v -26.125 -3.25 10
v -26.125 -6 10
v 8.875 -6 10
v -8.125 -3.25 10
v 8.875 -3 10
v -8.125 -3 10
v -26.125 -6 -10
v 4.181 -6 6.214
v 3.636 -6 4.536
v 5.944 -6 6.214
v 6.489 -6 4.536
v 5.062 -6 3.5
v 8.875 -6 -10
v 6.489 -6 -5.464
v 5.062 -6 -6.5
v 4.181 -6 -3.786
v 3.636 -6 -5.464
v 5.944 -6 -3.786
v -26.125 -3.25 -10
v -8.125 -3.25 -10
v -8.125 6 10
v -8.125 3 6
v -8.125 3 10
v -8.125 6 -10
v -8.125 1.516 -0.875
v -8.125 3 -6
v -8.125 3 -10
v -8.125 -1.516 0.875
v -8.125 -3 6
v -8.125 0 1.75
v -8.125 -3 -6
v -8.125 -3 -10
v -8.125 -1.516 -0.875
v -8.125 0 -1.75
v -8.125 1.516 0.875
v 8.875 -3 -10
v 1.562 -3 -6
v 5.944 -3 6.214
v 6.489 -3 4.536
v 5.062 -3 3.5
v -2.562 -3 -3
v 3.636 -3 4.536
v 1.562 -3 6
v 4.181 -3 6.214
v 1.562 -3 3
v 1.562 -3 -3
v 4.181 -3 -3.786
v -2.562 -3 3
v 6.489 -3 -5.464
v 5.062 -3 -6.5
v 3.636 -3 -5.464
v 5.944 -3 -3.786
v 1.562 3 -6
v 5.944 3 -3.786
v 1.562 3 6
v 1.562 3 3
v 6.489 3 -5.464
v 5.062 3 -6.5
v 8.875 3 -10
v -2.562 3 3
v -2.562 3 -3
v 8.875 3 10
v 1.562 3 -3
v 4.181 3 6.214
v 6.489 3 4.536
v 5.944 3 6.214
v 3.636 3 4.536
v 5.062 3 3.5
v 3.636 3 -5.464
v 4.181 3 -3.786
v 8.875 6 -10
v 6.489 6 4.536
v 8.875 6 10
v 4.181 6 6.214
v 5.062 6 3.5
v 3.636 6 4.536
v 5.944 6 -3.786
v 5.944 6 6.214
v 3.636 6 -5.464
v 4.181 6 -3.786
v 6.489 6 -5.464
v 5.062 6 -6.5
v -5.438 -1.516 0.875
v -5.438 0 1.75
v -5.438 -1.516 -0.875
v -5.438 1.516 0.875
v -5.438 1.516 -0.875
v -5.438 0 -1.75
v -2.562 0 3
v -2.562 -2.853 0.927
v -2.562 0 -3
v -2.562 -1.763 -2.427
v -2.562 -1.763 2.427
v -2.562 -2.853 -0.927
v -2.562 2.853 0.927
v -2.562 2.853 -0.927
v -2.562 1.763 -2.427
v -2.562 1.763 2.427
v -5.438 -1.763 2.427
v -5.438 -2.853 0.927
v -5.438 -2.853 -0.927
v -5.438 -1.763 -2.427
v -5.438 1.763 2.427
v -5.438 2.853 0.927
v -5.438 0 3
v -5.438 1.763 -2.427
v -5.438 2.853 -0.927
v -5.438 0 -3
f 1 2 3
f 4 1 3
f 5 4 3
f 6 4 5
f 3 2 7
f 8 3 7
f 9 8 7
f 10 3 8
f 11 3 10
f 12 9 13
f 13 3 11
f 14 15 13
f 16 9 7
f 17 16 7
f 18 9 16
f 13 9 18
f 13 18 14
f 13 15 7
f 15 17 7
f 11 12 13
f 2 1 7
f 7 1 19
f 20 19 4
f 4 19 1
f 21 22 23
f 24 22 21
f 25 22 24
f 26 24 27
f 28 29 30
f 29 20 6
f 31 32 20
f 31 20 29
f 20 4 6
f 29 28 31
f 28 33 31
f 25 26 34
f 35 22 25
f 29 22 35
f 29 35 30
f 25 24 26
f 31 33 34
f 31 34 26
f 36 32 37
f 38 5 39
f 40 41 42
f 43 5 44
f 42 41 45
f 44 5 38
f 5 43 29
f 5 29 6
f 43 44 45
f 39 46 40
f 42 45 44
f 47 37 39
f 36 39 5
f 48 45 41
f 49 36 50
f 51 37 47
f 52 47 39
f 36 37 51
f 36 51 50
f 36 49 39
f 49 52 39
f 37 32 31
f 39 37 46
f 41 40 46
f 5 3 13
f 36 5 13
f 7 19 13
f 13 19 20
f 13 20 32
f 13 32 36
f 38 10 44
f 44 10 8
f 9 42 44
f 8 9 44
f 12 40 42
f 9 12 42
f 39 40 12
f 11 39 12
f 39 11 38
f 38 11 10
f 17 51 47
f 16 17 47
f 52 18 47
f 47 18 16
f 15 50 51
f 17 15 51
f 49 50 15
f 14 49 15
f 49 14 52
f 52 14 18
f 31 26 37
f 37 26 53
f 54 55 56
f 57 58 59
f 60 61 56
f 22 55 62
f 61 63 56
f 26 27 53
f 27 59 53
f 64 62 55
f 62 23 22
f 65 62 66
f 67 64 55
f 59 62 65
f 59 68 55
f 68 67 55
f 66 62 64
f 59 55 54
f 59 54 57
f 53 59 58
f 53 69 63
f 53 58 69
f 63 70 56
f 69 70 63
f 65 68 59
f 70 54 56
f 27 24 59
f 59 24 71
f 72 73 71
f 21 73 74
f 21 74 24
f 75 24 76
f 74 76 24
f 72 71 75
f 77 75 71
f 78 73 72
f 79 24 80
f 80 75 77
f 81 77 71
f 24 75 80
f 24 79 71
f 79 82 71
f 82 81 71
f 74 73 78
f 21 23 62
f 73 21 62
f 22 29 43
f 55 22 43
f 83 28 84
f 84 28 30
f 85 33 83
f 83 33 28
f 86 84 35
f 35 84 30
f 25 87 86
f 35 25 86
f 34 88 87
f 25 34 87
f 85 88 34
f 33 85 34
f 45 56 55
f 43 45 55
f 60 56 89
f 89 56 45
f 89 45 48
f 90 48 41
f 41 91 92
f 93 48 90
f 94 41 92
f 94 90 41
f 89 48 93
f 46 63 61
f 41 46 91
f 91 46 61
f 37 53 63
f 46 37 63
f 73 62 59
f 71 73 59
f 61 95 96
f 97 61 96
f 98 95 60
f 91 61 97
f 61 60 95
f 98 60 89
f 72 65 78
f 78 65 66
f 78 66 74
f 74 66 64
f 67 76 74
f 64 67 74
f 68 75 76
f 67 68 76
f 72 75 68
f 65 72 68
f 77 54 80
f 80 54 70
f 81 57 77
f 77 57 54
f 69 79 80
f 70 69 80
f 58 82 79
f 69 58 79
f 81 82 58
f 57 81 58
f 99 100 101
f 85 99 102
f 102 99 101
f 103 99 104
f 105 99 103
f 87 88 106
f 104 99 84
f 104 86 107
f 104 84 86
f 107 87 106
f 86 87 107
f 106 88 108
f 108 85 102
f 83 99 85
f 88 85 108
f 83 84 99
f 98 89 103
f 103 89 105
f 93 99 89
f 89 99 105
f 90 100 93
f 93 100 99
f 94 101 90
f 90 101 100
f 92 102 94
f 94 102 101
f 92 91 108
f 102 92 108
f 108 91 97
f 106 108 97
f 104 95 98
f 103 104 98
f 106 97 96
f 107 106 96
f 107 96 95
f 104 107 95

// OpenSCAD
/*
 * microswitch_holder.scad
 * An updated mircoswitch holder for the adjustable z endstop holder.
 * Copyright (C) 2014 Mogue Carpenter
 *
 * This program is free software: you can redistribute it and/or modify
 * it under the terms of the GNU General Public License as published by
 * the Free Software Foundation, either version 3 of the License, or
 * (at your option) any later version.
 *
 * This program is distributed in the hope that it will be useful,
 * but WITHOUT ANY WARRANTY; without even the implied warranty of
 * MERCHANTABILITY or FITNESS FOR A PARTICULAR PURPOSE. See the
 * GNU General Public License for more details.

 * You should have received a copy of the GNU General Public License
 * along with this programbvngn If not, see <http://www.gnu.org/licenses/>.
*/

//switch dimensions
sw_h = 9.75;
sw_l = 20;
sw_w = 6;
sw_bore = 1.5;
sw_h_os = 3.5;
sw_gap = 10;

// holder
h_h = 35;
h_w = 12;
h_l = sw_l;
sc_os = 8;
wall = 2.75;
h_top_h = 13;

//wires tubing
pin_h = 4;
pin_w = 4;

//bolt hole
b_ir = 1.75;
b_or = 3;
b_h = 3;


rotate ([0,90,0])
difference(){
	translate([0,0,pin_h+sw_h/2-(h_h/2)]) cube([h_l,h_w,h_h], center=true);
	translate([0,0,sw_h/4]) sw_holder ();
	translate([0,2.75,((sw_h-h_h)/2)-h_top_h]) cube([h_l,h_w,h_h], center=true);
}	

//sw_holder ();

module sw_holder () {
	translate([0,0,pin_h]){
		cube([sw_l,sw_w,sw_h], center=true);
		// mircoswitch boltholes
		translate([sw_gap/2,0,-(sw_h/2)+sw_h_os]) rotate([90,0,0]) cylinder(h=h_w+1, r=sw_bore, center=true);
		translate([-sw_gap/2,0,-(sw_h/2)+sw_h_os]) rotate([90,0,0]) cylinder(h=h_w+1, r=sw_bore, center=true);
}
		// adjustment bolthole 
	translate([0,0,-((b_h+sw_h)/2)]) cylinder(h=b_h, r=b_h, center=true);
	translate([0,0,-((b_h+sw_h)/2)]) cylinder(h=h_h, r=b_ir, center=true);
	translate([0,0, -0.5-pin_h/2 ]) cube([b_or*2,sw_w, pin_h+1 ], center=true);
	difference(){
		translate([0,0,-h_h/2]) cube([sw_l,sw_w,h_h], center=true);
		translate([0,0,-h_h/2]) cube([sw_l-pin_w*2,sw_w,h_h], center=true);
	}
}
